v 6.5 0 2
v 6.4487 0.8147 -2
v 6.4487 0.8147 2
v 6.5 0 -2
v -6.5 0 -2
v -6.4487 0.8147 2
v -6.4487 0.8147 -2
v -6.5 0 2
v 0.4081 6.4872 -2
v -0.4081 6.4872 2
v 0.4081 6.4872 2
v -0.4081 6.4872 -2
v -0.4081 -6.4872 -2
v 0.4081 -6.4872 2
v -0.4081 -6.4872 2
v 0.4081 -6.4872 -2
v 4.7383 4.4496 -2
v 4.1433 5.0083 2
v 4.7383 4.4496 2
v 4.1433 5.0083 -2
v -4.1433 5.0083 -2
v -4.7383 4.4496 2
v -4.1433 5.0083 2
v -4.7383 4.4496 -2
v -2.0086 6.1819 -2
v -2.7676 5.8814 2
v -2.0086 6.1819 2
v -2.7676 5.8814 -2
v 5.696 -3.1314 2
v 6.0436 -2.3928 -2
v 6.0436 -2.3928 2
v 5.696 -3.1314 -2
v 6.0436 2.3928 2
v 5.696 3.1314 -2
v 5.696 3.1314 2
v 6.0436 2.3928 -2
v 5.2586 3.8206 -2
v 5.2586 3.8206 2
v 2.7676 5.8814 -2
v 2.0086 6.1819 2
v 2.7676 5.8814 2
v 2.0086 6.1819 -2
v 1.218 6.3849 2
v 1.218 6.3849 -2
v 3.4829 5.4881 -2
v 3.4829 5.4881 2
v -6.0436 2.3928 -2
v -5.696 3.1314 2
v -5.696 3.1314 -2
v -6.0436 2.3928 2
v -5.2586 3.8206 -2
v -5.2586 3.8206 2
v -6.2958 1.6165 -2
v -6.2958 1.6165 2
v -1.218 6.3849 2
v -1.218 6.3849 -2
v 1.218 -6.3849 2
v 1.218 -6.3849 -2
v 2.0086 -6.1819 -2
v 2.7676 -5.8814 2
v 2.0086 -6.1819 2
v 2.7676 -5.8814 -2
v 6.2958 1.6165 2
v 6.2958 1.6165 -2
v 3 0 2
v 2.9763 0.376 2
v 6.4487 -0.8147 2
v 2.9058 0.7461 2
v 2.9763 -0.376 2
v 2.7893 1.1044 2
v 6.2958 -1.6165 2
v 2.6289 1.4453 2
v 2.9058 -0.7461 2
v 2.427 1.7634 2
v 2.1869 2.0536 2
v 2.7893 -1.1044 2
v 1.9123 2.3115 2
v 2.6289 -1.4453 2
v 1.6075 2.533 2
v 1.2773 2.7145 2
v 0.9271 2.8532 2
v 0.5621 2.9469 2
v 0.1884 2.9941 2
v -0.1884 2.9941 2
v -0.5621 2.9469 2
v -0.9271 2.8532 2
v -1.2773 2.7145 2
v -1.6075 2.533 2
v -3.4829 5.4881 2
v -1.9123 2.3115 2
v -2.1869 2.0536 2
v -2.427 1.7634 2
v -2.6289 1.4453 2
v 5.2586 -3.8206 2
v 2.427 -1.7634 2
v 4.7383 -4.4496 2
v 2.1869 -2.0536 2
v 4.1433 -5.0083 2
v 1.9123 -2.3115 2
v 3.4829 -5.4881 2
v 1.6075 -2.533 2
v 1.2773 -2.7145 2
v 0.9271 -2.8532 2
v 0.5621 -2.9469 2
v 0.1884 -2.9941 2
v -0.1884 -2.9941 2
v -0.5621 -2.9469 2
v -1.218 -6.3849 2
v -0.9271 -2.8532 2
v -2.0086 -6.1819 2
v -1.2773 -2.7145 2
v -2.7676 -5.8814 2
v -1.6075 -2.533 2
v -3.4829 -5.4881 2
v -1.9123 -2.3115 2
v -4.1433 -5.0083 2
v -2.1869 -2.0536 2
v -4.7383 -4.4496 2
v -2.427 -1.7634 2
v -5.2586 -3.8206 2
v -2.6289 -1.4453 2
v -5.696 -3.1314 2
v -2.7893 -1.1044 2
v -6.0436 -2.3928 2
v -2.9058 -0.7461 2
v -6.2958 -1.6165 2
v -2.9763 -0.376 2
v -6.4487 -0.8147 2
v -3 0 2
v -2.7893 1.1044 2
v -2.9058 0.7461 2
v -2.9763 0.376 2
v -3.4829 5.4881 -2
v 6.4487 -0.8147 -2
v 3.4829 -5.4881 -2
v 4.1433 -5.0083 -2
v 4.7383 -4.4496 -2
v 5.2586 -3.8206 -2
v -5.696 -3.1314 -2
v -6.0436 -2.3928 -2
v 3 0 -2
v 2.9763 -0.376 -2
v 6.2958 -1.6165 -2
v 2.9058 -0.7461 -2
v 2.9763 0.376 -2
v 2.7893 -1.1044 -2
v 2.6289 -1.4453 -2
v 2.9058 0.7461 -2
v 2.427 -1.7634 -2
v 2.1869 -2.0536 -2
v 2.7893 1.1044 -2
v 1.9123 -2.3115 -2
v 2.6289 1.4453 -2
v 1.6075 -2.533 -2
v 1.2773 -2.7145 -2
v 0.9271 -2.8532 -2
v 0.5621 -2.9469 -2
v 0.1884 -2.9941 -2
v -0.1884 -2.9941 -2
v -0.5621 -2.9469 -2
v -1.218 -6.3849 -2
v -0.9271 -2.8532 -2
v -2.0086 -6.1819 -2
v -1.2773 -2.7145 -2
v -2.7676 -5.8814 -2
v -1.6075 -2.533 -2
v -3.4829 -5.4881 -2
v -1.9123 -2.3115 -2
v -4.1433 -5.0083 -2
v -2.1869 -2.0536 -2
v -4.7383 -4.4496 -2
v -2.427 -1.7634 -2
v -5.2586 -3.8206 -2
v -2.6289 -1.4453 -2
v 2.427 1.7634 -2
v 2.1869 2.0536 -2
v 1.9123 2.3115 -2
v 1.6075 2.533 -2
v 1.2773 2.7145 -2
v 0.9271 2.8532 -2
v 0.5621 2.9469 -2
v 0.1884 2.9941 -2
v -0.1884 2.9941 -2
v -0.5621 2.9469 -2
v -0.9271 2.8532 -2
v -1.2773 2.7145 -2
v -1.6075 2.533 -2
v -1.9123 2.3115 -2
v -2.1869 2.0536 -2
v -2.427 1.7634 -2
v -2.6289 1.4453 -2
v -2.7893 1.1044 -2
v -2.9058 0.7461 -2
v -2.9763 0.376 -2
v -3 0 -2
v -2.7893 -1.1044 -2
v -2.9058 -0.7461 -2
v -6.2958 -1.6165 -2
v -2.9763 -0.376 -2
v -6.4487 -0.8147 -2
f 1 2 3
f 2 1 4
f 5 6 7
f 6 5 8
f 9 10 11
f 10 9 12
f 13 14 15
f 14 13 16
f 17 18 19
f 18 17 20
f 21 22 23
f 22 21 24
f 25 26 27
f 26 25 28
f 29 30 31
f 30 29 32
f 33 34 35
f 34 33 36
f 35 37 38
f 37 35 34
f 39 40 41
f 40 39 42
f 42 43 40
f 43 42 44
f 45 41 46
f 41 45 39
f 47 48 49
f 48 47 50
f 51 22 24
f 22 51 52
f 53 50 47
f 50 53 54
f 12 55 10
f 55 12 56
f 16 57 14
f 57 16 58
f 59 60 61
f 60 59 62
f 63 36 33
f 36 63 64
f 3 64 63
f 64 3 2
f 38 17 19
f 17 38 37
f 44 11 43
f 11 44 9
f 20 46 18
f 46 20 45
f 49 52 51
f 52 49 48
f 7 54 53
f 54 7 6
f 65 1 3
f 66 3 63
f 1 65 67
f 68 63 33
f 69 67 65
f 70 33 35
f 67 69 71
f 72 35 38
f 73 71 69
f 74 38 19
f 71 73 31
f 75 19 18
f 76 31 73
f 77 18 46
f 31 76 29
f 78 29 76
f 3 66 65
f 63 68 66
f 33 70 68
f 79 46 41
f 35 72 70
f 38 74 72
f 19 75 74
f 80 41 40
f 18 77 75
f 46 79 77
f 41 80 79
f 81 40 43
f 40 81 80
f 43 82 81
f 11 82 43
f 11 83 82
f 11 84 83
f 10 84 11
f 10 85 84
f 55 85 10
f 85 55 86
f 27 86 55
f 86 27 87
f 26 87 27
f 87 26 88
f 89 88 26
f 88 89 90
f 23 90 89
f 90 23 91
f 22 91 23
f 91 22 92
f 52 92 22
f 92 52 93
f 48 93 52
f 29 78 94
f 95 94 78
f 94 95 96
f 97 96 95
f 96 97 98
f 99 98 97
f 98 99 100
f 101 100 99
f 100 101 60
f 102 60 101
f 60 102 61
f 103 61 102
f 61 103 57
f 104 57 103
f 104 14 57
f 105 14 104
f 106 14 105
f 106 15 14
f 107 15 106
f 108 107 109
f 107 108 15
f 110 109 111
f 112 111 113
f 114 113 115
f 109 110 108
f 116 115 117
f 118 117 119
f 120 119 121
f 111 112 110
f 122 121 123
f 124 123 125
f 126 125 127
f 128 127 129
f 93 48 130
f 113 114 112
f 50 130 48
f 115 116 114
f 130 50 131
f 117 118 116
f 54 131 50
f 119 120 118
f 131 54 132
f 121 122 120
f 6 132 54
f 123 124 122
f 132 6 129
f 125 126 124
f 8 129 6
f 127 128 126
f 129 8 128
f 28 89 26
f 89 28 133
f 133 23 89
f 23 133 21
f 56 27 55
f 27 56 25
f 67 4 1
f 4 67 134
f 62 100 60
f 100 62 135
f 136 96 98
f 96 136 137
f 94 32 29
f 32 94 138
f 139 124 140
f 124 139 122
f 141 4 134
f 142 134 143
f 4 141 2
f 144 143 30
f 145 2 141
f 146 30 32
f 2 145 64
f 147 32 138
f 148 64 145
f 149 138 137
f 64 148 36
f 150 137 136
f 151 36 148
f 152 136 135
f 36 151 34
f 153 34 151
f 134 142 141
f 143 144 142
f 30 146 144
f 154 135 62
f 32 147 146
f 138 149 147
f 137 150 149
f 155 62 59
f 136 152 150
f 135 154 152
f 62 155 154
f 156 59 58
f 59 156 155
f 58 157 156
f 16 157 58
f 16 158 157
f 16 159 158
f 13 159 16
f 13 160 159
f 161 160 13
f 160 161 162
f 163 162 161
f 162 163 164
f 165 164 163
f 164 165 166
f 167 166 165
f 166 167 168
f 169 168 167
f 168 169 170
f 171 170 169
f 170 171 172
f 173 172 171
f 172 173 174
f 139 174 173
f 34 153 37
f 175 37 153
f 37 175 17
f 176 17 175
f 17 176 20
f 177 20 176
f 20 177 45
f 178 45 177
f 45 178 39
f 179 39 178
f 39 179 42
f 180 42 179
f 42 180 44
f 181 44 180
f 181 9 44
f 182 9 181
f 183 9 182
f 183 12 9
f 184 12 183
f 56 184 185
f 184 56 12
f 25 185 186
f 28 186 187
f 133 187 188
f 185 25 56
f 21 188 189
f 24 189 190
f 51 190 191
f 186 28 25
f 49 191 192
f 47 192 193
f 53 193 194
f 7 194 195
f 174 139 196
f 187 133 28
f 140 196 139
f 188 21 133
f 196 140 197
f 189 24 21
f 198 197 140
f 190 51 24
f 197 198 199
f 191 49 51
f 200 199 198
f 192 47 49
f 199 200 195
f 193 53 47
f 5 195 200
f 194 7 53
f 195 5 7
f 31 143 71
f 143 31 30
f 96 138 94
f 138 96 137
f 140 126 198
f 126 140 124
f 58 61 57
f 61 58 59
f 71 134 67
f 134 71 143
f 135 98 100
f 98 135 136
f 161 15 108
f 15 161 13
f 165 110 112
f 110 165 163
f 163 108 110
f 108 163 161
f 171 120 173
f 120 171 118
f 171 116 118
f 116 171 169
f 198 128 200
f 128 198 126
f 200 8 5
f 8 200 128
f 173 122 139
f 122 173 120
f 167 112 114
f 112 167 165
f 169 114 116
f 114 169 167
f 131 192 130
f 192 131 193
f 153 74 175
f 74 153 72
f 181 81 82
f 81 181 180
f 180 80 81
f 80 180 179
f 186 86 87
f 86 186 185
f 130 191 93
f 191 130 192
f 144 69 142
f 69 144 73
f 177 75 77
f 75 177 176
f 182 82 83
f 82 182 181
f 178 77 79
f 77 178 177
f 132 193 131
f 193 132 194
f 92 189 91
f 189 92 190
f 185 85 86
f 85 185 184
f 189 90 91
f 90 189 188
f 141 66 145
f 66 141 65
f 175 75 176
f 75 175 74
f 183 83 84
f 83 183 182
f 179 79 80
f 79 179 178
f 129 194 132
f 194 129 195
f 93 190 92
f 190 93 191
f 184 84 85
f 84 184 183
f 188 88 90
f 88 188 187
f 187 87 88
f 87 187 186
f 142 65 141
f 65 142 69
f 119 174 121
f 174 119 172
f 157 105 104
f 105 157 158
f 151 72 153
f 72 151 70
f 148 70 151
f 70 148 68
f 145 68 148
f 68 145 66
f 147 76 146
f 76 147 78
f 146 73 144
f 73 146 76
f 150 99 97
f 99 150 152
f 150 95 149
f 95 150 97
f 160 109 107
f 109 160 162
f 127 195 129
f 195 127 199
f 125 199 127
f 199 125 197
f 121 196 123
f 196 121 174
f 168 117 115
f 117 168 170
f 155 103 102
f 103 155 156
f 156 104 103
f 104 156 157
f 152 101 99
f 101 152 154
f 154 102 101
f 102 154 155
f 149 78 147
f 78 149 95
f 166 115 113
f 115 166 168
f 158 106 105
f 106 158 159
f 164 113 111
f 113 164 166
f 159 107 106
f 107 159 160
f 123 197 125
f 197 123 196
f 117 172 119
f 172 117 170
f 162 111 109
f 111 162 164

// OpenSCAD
$fn = 50;


difference() {
	union() {
		translate(v = [0, 0, -2.0000000000]) {
			cylinder(h = 4, r = 6.5000000000);
		}
	}
	union() {
		translate(v = [0, 0, -100.0000000000]) {
			cylinder(h = 200, r = 3);
		}
	}
}
